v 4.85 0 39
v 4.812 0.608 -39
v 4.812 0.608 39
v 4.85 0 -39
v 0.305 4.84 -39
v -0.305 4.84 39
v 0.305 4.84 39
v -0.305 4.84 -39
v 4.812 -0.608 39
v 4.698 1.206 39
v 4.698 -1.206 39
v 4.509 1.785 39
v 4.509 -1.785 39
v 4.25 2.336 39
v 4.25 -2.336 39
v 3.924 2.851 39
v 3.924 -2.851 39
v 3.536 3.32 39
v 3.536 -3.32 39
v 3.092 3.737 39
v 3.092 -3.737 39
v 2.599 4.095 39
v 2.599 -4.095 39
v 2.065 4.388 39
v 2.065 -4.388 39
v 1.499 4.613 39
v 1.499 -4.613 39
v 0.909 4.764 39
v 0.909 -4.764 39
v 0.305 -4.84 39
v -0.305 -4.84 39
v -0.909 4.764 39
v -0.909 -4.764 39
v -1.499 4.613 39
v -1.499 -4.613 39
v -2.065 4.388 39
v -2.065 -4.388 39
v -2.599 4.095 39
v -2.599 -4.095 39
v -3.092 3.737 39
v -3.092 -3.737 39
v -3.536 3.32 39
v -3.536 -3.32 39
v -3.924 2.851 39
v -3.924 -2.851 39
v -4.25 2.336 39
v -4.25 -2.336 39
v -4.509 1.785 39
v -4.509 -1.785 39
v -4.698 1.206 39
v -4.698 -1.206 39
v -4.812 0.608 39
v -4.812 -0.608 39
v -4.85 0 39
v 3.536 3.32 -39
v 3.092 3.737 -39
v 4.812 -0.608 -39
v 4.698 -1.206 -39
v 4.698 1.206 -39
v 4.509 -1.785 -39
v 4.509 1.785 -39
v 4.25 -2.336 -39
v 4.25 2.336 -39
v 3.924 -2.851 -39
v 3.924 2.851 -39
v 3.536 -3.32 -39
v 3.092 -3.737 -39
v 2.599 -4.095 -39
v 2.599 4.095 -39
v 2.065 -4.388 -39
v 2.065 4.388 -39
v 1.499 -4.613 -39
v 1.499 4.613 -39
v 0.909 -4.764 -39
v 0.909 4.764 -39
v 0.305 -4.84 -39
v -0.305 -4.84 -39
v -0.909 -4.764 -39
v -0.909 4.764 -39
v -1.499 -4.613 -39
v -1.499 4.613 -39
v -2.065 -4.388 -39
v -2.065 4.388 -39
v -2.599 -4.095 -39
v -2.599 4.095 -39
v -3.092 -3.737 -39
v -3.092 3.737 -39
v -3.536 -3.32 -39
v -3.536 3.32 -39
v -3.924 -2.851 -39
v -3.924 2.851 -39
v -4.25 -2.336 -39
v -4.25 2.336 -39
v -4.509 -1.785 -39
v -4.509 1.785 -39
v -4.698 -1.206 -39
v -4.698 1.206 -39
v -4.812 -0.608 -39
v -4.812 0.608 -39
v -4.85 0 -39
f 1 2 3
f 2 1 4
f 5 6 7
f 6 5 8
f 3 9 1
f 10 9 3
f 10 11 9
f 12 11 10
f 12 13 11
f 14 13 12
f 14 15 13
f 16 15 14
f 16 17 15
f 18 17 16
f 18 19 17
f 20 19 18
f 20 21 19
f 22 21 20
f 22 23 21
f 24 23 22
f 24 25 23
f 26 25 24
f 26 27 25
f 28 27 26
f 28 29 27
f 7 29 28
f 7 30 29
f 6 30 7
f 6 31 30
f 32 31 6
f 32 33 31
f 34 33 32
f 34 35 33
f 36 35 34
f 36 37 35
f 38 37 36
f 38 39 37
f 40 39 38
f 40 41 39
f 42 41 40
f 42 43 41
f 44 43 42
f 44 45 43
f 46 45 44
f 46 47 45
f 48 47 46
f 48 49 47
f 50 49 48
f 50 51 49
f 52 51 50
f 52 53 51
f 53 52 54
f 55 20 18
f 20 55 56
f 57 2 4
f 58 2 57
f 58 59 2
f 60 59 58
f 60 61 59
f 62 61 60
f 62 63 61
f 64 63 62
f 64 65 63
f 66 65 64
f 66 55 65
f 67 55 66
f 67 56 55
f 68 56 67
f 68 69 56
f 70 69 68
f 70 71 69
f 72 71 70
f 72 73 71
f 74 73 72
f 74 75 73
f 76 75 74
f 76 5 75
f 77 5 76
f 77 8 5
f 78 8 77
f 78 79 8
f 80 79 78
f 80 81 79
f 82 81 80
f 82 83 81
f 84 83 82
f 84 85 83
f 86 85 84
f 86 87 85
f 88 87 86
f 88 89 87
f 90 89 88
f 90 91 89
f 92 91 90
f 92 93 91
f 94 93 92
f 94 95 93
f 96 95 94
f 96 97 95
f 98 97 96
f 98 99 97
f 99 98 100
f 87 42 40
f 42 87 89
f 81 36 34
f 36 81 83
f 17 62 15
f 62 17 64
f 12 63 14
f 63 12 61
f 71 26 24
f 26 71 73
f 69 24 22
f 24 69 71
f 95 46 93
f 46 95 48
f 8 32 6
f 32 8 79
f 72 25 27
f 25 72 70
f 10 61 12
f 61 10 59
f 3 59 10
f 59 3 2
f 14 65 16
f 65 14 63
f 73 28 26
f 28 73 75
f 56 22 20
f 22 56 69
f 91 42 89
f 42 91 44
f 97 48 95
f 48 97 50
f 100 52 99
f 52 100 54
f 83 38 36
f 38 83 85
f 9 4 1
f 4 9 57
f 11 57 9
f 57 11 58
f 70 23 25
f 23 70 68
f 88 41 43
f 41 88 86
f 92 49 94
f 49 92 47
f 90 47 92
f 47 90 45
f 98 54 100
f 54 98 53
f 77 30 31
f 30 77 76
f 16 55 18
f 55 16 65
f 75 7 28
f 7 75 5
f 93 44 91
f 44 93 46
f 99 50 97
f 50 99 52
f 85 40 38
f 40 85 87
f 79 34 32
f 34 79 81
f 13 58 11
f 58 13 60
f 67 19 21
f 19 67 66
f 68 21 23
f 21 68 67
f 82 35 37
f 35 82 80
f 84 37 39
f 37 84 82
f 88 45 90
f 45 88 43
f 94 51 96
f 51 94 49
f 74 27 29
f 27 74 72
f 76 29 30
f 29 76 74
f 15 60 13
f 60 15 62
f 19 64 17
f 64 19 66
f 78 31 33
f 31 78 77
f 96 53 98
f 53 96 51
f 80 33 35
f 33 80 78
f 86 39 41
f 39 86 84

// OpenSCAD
$fn = 50;


difference() {
	union() {
		translate(v = [0, 0, -39.0000000000]) {
			cylinder(h = 78, r = 4.8500000000);
		}
	}
	union() {
		translate(v = [0, 0, -100.0000000000]) {
			cylinder(h = 200, r = 0);
		}
	}
}
